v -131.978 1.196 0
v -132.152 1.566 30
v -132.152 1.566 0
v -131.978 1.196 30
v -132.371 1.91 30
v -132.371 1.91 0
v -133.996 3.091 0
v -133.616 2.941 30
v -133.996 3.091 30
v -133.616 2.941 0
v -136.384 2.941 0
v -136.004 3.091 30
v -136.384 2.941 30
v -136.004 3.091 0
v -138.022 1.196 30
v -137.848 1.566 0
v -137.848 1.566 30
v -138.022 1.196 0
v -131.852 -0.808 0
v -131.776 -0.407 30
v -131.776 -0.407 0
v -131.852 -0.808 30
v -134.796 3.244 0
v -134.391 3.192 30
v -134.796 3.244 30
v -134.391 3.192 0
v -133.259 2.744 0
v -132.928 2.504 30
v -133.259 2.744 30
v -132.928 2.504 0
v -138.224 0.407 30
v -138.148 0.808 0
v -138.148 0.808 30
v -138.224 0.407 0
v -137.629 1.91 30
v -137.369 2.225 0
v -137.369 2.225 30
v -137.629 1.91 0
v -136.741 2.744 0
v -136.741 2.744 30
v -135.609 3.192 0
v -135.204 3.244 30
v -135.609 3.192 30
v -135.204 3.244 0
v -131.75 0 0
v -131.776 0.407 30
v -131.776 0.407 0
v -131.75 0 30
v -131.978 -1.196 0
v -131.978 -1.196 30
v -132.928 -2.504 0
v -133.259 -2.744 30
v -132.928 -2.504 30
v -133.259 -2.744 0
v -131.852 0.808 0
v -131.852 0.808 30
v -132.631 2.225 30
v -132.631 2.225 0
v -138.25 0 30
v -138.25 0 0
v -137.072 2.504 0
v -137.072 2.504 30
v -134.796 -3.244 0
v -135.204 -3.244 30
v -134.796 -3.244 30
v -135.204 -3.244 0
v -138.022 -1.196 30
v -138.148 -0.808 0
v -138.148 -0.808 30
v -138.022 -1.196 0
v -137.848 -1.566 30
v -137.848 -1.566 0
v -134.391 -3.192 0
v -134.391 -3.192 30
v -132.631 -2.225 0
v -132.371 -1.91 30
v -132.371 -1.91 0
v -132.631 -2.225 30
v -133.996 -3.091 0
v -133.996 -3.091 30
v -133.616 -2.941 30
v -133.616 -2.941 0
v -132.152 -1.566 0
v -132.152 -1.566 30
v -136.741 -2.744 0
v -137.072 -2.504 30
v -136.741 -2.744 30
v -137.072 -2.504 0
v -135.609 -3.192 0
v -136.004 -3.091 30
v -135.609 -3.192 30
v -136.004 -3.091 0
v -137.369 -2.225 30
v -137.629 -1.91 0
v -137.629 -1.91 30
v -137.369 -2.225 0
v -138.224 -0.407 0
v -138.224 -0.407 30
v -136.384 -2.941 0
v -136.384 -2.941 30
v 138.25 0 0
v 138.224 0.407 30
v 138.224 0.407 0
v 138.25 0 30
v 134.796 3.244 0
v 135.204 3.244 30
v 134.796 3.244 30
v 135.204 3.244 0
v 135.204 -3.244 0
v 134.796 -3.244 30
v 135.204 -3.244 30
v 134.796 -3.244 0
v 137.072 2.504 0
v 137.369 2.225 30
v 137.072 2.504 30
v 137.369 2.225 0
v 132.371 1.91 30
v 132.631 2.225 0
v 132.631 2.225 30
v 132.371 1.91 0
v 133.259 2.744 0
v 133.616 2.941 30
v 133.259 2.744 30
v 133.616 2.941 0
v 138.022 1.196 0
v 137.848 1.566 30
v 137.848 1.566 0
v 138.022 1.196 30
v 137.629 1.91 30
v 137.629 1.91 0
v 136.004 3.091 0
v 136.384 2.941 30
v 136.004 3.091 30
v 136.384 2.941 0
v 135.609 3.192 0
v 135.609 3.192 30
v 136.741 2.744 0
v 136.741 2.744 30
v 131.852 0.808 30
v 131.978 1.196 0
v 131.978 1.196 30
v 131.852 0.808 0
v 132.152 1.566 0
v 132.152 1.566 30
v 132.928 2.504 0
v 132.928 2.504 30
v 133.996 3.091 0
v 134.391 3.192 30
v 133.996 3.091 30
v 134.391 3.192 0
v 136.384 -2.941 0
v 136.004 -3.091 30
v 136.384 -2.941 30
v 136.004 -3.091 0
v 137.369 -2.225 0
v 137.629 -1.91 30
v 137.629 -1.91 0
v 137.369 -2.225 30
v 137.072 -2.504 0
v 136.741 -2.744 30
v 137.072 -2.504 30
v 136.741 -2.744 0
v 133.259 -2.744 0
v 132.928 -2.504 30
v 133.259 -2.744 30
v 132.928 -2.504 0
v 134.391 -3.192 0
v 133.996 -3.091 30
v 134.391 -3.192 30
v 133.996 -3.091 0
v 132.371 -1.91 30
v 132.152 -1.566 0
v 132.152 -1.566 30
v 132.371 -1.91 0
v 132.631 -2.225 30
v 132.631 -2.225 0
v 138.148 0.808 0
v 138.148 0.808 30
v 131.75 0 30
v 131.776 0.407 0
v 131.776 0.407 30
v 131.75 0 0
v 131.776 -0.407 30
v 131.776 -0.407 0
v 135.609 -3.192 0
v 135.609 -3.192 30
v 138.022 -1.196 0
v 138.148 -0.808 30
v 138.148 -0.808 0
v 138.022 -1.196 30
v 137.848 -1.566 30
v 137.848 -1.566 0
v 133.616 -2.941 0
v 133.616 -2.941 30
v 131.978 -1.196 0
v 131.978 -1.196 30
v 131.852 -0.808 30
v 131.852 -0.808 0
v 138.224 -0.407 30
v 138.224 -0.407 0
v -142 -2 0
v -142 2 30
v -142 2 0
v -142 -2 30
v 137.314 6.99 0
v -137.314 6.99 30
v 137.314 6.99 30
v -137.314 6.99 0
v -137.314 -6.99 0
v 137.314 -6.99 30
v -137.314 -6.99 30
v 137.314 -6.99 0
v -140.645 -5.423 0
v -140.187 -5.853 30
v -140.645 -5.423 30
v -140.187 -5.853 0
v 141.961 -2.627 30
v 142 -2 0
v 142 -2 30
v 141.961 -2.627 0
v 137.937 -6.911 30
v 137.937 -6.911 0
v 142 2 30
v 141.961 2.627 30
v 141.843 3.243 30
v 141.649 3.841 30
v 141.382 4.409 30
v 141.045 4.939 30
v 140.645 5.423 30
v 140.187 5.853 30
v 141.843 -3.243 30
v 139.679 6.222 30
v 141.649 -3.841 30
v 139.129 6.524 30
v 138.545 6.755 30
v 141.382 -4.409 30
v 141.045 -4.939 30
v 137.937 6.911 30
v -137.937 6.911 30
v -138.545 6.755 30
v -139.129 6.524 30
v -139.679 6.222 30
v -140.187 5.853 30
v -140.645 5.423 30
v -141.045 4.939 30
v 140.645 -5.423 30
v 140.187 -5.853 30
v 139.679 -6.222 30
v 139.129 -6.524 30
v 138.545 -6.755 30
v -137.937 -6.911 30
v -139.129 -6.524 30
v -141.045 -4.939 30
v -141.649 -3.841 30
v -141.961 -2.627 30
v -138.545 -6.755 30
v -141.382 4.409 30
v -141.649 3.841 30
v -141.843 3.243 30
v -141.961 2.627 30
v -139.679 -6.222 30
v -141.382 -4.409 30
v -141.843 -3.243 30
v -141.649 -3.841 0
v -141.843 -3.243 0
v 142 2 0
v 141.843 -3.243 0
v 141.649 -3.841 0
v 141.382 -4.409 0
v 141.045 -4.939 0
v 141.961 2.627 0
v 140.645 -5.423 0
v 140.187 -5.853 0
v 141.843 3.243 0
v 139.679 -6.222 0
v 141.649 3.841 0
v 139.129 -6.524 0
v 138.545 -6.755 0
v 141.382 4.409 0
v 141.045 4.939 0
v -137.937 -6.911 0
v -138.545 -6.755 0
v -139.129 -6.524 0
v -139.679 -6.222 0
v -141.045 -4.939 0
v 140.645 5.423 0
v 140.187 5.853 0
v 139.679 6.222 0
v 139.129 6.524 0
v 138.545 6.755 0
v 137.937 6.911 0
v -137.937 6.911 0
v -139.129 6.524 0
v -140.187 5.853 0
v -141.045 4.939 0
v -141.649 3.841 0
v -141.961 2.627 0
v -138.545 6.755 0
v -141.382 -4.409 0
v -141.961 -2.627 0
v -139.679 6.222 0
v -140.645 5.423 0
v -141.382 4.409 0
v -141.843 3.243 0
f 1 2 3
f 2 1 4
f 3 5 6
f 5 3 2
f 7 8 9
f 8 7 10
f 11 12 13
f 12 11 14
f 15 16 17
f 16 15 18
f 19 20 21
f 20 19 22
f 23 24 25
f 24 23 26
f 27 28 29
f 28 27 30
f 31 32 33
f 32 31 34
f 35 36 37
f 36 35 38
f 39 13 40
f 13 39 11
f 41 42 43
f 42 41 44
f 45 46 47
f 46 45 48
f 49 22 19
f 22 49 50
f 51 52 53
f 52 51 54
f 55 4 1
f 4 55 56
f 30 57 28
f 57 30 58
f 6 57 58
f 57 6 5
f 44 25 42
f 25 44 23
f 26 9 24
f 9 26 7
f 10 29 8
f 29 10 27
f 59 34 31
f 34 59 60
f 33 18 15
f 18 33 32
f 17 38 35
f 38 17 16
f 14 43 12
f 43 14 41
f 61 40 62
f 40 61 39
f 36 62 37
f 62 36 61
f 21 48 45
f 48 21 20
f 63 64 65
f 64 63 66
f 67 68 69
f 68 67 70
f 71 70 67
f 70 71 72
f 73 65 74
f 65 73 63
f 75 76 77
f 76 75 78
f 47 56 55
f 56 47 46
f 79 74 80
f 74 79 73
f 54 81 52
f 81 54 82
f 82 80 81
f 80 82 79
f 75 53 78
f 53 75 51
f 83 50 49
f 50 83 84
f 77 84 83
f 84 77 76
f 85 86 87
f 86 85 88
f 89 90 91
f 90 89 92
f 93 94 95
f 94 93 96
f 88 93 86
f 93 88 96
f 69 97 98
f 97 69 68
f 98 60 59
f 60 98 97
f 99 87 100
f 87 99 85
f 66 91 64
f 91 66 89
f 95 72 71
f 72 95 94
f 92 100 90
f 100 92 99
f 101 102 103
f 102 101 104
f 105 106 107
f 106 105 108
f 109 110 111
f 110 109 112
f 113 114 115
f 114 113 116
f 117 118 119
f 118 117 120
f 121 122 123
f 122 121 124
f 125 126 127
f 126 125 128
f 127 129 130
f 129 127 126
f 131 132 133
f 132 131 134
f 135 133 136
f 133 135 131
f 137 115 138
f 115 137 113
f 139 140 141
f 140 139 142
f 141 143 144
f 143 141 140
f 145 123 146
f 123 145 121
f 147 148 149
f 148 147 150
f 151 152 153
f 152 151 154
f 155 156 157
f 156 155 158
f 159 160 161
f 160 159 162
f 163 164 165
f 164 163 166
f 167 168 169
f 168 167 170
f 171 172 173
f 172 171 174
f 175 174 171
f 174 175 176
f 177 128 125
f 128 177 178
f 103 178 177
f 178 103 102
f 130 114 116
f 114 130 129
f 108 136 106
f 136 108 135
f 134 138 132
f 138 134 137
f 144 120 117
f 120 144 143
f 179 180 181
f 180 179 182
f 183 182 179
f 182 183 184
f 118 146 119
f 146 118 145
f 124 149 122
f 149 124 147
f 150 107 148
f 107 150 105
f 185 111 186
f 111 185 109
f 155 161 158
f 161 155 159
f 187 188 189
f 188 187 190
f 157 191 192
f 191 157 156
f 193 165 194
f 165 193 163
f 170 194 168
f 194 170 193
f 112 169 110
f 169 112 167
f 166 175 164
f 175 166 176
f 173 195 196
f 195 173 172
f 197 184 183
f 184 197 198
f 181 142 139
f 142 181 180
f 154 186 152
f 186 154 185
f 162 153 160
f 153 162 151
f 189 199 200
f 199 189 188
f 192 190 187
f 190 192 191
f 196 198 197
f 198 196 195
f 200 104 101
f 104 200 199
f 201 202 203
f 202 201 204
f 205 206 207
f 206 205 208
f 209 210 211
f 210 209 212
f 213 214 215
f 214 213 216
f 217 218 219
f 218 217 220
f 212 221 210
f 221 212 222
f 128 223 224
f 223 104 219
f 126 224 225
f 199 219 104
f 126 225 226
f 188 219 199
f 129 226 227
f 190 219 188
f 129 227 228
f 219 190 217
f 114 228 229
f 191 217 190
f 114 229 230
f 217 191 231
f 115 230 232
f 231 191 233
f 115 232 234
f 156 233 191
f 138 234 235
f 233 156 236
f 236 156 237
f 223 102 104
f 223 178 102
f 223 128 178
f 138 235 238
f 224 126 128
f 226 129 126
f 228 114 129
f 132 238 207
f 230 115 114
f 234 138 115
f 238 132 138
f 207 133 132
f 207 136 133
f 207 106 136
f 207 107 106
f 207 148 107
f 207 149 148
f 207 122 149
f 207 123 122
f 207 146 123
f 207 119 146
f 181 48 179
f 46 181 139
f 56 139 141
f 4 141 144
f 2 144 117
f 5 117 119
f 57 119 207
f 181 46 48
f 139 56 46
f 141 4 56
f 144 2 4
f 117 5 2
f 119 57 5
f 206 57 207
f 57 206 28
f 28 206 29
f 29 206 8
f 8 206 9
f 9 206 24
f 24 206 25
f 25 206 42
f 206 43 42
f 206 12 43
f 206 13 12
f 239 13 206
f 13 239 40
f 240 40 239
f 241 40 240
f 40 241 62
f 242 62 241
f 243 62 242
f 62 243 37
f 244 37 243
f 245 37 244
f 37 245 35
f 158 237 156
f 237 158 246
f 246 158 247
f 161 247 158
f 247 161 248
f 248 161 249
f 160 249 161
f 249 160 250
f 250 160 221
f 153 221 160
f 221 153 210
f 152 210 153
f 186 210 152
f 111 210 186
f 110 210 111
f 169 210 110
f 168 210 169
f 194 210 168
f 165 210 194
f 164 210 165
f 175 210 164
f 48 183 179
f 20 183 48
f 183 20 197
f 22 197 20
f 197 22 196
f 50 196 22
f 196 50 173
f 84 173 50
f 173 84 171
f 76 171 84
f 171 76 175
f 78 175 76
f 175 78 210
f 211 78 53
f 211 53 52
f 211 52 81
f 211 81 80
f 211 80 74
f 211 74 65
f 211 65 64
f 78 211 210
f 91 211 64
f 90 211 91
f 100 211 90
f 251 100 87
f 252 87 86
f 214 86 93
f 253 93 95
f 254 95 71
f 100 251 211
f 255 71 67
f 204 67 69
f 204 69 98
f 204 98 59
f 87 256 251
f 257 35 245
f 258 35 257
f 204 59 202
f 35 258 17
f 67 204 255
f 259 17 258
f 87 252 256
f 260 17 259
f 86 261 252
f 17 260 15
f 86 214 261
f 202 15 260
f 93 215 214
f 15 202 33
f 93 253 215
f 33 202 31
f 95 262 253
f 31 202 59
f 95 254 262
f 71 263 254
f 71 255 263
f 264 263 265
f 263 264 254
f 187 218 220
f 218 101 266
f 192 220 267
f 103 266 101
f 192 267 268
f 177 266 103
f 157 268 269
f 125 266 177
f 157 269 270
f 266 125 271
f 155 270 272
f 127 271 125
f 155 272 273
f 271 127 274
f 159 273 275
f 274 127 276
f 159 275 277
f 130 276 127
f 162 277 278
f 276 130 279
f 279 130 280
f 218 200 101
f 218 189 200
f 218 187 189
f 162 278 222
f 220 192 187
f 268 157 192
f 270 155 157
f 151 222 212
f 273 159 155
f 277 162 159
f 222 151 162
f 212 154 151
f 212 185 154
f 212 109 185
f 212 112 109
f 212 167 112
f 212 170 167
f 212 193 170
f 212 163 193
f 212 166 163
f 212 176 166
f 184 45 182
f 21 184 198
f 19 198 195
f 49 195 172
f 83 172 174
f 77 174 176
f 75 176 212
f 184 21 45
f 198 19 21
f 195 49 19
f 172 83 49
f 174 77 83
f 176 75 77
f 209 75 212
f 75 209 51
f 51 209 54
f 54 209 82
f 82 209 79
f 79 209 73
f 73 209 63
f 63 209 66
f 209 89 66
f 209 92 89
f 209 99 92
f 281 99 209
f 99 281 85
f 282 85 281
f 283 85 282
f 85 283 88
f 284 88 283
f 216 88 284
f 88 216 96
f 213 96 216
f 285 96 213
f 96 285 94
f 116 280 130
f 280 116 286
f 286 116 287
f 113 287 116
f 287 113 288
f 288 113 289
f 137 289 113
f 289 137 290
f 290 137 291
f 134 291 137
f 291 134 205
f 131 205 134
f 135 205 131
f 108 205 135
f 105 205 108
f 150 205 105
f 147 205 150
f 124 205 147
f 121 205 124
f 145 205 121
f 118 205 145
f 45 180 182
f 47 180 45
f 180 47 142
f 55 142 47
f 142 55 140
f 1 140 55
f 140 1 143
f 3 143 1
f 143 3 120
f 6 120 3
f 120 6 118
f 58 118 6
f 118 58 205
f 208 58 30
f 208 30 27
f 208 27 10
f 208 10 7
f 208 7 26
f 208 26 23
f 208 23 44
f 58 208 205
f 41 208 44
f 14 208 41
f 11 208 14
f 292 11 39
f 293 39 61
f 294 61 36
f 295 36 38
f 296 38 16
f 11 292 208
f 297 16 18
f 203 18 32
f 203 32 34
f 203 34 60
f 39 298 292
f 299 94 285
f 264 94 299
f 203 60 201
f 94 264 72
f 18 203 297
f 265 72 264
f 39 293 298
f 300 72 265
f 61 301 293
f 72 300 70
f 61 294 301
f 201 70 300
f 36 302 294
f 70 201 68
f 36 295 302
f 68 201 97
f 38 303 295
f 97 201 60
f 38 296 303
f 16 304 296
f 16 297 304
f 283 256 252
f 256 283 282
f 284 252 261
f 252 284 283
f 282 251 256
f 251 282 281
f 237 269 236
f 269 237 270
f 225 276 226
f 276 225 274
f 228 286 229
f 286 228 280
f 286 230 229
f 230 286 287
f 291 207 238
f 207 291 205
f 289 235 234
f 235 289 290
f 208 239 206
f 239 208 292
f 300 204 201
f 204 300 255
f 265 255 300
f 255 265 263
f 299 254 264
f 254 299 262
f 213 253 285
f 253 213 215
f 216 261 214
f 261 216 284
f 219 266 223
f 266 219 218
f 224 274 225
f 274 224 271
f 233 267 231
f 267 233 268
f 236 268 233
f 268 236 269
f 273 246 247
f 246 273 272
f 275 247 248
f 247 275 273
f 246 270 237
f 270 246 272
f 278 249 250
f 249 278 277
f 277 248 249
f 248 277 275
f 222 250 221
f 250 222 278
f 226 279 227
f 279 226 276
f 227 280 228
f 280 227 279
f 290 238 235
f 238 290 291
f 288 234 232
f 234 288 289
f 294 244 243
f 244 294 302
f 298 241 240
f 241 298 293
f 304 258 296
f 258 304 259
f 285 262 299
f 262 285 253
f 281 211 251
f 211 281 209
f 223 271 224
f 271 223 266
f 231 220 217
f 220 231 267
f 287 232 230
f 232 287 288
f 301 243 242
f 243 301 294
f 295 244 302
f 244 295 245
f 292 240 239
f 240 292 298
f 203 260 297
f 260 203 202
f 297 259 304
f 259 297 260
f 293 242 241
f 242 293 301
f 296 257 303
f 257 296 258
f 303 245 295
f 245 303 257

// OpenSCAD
$fn = 50;


difference() {
	union() {
		hull() {
			translate(v = [-137.0000000000, 2.0000000000, 0]) {
				cylinder(h = 30, r = 5);
			}
			translate(v = [137.0000000000, 2.0000000000, 0]) {
				cylinder(h = 30, r = 5);
			}
			translate(v = [-137.0000000000, -2.0000000000, 0]) {
				cylinder(h = 30, r = 5);
			}
			translate(v = [137.0000000000, -2.0000000000, 0]) {
				cylinder(h = 30, r = 5);
			}
		}
	}
	union() {
		translate(v = [-135.0000000000, 0.0000000000, -100.0000000000]) {
			cylinder(h = 200, r = 3.2500000000);
		}
		translate(v = [-135.0000000000, 0.0000000000, -100.0000000000]) {
			cylinder(h = 200, r = 3.2500000000);
		}
		translate(v = [135.0000000000, 0.0000000000, -100.0000000000]) {
			cylinder(h = 200, r = 3.2500000000);
		}
		translate(v = [135.0000000000, 0.0000000000, -100.0000000000]) {
			cylinder(h = 200, r = 3.2500000000);
		}
	}
}
